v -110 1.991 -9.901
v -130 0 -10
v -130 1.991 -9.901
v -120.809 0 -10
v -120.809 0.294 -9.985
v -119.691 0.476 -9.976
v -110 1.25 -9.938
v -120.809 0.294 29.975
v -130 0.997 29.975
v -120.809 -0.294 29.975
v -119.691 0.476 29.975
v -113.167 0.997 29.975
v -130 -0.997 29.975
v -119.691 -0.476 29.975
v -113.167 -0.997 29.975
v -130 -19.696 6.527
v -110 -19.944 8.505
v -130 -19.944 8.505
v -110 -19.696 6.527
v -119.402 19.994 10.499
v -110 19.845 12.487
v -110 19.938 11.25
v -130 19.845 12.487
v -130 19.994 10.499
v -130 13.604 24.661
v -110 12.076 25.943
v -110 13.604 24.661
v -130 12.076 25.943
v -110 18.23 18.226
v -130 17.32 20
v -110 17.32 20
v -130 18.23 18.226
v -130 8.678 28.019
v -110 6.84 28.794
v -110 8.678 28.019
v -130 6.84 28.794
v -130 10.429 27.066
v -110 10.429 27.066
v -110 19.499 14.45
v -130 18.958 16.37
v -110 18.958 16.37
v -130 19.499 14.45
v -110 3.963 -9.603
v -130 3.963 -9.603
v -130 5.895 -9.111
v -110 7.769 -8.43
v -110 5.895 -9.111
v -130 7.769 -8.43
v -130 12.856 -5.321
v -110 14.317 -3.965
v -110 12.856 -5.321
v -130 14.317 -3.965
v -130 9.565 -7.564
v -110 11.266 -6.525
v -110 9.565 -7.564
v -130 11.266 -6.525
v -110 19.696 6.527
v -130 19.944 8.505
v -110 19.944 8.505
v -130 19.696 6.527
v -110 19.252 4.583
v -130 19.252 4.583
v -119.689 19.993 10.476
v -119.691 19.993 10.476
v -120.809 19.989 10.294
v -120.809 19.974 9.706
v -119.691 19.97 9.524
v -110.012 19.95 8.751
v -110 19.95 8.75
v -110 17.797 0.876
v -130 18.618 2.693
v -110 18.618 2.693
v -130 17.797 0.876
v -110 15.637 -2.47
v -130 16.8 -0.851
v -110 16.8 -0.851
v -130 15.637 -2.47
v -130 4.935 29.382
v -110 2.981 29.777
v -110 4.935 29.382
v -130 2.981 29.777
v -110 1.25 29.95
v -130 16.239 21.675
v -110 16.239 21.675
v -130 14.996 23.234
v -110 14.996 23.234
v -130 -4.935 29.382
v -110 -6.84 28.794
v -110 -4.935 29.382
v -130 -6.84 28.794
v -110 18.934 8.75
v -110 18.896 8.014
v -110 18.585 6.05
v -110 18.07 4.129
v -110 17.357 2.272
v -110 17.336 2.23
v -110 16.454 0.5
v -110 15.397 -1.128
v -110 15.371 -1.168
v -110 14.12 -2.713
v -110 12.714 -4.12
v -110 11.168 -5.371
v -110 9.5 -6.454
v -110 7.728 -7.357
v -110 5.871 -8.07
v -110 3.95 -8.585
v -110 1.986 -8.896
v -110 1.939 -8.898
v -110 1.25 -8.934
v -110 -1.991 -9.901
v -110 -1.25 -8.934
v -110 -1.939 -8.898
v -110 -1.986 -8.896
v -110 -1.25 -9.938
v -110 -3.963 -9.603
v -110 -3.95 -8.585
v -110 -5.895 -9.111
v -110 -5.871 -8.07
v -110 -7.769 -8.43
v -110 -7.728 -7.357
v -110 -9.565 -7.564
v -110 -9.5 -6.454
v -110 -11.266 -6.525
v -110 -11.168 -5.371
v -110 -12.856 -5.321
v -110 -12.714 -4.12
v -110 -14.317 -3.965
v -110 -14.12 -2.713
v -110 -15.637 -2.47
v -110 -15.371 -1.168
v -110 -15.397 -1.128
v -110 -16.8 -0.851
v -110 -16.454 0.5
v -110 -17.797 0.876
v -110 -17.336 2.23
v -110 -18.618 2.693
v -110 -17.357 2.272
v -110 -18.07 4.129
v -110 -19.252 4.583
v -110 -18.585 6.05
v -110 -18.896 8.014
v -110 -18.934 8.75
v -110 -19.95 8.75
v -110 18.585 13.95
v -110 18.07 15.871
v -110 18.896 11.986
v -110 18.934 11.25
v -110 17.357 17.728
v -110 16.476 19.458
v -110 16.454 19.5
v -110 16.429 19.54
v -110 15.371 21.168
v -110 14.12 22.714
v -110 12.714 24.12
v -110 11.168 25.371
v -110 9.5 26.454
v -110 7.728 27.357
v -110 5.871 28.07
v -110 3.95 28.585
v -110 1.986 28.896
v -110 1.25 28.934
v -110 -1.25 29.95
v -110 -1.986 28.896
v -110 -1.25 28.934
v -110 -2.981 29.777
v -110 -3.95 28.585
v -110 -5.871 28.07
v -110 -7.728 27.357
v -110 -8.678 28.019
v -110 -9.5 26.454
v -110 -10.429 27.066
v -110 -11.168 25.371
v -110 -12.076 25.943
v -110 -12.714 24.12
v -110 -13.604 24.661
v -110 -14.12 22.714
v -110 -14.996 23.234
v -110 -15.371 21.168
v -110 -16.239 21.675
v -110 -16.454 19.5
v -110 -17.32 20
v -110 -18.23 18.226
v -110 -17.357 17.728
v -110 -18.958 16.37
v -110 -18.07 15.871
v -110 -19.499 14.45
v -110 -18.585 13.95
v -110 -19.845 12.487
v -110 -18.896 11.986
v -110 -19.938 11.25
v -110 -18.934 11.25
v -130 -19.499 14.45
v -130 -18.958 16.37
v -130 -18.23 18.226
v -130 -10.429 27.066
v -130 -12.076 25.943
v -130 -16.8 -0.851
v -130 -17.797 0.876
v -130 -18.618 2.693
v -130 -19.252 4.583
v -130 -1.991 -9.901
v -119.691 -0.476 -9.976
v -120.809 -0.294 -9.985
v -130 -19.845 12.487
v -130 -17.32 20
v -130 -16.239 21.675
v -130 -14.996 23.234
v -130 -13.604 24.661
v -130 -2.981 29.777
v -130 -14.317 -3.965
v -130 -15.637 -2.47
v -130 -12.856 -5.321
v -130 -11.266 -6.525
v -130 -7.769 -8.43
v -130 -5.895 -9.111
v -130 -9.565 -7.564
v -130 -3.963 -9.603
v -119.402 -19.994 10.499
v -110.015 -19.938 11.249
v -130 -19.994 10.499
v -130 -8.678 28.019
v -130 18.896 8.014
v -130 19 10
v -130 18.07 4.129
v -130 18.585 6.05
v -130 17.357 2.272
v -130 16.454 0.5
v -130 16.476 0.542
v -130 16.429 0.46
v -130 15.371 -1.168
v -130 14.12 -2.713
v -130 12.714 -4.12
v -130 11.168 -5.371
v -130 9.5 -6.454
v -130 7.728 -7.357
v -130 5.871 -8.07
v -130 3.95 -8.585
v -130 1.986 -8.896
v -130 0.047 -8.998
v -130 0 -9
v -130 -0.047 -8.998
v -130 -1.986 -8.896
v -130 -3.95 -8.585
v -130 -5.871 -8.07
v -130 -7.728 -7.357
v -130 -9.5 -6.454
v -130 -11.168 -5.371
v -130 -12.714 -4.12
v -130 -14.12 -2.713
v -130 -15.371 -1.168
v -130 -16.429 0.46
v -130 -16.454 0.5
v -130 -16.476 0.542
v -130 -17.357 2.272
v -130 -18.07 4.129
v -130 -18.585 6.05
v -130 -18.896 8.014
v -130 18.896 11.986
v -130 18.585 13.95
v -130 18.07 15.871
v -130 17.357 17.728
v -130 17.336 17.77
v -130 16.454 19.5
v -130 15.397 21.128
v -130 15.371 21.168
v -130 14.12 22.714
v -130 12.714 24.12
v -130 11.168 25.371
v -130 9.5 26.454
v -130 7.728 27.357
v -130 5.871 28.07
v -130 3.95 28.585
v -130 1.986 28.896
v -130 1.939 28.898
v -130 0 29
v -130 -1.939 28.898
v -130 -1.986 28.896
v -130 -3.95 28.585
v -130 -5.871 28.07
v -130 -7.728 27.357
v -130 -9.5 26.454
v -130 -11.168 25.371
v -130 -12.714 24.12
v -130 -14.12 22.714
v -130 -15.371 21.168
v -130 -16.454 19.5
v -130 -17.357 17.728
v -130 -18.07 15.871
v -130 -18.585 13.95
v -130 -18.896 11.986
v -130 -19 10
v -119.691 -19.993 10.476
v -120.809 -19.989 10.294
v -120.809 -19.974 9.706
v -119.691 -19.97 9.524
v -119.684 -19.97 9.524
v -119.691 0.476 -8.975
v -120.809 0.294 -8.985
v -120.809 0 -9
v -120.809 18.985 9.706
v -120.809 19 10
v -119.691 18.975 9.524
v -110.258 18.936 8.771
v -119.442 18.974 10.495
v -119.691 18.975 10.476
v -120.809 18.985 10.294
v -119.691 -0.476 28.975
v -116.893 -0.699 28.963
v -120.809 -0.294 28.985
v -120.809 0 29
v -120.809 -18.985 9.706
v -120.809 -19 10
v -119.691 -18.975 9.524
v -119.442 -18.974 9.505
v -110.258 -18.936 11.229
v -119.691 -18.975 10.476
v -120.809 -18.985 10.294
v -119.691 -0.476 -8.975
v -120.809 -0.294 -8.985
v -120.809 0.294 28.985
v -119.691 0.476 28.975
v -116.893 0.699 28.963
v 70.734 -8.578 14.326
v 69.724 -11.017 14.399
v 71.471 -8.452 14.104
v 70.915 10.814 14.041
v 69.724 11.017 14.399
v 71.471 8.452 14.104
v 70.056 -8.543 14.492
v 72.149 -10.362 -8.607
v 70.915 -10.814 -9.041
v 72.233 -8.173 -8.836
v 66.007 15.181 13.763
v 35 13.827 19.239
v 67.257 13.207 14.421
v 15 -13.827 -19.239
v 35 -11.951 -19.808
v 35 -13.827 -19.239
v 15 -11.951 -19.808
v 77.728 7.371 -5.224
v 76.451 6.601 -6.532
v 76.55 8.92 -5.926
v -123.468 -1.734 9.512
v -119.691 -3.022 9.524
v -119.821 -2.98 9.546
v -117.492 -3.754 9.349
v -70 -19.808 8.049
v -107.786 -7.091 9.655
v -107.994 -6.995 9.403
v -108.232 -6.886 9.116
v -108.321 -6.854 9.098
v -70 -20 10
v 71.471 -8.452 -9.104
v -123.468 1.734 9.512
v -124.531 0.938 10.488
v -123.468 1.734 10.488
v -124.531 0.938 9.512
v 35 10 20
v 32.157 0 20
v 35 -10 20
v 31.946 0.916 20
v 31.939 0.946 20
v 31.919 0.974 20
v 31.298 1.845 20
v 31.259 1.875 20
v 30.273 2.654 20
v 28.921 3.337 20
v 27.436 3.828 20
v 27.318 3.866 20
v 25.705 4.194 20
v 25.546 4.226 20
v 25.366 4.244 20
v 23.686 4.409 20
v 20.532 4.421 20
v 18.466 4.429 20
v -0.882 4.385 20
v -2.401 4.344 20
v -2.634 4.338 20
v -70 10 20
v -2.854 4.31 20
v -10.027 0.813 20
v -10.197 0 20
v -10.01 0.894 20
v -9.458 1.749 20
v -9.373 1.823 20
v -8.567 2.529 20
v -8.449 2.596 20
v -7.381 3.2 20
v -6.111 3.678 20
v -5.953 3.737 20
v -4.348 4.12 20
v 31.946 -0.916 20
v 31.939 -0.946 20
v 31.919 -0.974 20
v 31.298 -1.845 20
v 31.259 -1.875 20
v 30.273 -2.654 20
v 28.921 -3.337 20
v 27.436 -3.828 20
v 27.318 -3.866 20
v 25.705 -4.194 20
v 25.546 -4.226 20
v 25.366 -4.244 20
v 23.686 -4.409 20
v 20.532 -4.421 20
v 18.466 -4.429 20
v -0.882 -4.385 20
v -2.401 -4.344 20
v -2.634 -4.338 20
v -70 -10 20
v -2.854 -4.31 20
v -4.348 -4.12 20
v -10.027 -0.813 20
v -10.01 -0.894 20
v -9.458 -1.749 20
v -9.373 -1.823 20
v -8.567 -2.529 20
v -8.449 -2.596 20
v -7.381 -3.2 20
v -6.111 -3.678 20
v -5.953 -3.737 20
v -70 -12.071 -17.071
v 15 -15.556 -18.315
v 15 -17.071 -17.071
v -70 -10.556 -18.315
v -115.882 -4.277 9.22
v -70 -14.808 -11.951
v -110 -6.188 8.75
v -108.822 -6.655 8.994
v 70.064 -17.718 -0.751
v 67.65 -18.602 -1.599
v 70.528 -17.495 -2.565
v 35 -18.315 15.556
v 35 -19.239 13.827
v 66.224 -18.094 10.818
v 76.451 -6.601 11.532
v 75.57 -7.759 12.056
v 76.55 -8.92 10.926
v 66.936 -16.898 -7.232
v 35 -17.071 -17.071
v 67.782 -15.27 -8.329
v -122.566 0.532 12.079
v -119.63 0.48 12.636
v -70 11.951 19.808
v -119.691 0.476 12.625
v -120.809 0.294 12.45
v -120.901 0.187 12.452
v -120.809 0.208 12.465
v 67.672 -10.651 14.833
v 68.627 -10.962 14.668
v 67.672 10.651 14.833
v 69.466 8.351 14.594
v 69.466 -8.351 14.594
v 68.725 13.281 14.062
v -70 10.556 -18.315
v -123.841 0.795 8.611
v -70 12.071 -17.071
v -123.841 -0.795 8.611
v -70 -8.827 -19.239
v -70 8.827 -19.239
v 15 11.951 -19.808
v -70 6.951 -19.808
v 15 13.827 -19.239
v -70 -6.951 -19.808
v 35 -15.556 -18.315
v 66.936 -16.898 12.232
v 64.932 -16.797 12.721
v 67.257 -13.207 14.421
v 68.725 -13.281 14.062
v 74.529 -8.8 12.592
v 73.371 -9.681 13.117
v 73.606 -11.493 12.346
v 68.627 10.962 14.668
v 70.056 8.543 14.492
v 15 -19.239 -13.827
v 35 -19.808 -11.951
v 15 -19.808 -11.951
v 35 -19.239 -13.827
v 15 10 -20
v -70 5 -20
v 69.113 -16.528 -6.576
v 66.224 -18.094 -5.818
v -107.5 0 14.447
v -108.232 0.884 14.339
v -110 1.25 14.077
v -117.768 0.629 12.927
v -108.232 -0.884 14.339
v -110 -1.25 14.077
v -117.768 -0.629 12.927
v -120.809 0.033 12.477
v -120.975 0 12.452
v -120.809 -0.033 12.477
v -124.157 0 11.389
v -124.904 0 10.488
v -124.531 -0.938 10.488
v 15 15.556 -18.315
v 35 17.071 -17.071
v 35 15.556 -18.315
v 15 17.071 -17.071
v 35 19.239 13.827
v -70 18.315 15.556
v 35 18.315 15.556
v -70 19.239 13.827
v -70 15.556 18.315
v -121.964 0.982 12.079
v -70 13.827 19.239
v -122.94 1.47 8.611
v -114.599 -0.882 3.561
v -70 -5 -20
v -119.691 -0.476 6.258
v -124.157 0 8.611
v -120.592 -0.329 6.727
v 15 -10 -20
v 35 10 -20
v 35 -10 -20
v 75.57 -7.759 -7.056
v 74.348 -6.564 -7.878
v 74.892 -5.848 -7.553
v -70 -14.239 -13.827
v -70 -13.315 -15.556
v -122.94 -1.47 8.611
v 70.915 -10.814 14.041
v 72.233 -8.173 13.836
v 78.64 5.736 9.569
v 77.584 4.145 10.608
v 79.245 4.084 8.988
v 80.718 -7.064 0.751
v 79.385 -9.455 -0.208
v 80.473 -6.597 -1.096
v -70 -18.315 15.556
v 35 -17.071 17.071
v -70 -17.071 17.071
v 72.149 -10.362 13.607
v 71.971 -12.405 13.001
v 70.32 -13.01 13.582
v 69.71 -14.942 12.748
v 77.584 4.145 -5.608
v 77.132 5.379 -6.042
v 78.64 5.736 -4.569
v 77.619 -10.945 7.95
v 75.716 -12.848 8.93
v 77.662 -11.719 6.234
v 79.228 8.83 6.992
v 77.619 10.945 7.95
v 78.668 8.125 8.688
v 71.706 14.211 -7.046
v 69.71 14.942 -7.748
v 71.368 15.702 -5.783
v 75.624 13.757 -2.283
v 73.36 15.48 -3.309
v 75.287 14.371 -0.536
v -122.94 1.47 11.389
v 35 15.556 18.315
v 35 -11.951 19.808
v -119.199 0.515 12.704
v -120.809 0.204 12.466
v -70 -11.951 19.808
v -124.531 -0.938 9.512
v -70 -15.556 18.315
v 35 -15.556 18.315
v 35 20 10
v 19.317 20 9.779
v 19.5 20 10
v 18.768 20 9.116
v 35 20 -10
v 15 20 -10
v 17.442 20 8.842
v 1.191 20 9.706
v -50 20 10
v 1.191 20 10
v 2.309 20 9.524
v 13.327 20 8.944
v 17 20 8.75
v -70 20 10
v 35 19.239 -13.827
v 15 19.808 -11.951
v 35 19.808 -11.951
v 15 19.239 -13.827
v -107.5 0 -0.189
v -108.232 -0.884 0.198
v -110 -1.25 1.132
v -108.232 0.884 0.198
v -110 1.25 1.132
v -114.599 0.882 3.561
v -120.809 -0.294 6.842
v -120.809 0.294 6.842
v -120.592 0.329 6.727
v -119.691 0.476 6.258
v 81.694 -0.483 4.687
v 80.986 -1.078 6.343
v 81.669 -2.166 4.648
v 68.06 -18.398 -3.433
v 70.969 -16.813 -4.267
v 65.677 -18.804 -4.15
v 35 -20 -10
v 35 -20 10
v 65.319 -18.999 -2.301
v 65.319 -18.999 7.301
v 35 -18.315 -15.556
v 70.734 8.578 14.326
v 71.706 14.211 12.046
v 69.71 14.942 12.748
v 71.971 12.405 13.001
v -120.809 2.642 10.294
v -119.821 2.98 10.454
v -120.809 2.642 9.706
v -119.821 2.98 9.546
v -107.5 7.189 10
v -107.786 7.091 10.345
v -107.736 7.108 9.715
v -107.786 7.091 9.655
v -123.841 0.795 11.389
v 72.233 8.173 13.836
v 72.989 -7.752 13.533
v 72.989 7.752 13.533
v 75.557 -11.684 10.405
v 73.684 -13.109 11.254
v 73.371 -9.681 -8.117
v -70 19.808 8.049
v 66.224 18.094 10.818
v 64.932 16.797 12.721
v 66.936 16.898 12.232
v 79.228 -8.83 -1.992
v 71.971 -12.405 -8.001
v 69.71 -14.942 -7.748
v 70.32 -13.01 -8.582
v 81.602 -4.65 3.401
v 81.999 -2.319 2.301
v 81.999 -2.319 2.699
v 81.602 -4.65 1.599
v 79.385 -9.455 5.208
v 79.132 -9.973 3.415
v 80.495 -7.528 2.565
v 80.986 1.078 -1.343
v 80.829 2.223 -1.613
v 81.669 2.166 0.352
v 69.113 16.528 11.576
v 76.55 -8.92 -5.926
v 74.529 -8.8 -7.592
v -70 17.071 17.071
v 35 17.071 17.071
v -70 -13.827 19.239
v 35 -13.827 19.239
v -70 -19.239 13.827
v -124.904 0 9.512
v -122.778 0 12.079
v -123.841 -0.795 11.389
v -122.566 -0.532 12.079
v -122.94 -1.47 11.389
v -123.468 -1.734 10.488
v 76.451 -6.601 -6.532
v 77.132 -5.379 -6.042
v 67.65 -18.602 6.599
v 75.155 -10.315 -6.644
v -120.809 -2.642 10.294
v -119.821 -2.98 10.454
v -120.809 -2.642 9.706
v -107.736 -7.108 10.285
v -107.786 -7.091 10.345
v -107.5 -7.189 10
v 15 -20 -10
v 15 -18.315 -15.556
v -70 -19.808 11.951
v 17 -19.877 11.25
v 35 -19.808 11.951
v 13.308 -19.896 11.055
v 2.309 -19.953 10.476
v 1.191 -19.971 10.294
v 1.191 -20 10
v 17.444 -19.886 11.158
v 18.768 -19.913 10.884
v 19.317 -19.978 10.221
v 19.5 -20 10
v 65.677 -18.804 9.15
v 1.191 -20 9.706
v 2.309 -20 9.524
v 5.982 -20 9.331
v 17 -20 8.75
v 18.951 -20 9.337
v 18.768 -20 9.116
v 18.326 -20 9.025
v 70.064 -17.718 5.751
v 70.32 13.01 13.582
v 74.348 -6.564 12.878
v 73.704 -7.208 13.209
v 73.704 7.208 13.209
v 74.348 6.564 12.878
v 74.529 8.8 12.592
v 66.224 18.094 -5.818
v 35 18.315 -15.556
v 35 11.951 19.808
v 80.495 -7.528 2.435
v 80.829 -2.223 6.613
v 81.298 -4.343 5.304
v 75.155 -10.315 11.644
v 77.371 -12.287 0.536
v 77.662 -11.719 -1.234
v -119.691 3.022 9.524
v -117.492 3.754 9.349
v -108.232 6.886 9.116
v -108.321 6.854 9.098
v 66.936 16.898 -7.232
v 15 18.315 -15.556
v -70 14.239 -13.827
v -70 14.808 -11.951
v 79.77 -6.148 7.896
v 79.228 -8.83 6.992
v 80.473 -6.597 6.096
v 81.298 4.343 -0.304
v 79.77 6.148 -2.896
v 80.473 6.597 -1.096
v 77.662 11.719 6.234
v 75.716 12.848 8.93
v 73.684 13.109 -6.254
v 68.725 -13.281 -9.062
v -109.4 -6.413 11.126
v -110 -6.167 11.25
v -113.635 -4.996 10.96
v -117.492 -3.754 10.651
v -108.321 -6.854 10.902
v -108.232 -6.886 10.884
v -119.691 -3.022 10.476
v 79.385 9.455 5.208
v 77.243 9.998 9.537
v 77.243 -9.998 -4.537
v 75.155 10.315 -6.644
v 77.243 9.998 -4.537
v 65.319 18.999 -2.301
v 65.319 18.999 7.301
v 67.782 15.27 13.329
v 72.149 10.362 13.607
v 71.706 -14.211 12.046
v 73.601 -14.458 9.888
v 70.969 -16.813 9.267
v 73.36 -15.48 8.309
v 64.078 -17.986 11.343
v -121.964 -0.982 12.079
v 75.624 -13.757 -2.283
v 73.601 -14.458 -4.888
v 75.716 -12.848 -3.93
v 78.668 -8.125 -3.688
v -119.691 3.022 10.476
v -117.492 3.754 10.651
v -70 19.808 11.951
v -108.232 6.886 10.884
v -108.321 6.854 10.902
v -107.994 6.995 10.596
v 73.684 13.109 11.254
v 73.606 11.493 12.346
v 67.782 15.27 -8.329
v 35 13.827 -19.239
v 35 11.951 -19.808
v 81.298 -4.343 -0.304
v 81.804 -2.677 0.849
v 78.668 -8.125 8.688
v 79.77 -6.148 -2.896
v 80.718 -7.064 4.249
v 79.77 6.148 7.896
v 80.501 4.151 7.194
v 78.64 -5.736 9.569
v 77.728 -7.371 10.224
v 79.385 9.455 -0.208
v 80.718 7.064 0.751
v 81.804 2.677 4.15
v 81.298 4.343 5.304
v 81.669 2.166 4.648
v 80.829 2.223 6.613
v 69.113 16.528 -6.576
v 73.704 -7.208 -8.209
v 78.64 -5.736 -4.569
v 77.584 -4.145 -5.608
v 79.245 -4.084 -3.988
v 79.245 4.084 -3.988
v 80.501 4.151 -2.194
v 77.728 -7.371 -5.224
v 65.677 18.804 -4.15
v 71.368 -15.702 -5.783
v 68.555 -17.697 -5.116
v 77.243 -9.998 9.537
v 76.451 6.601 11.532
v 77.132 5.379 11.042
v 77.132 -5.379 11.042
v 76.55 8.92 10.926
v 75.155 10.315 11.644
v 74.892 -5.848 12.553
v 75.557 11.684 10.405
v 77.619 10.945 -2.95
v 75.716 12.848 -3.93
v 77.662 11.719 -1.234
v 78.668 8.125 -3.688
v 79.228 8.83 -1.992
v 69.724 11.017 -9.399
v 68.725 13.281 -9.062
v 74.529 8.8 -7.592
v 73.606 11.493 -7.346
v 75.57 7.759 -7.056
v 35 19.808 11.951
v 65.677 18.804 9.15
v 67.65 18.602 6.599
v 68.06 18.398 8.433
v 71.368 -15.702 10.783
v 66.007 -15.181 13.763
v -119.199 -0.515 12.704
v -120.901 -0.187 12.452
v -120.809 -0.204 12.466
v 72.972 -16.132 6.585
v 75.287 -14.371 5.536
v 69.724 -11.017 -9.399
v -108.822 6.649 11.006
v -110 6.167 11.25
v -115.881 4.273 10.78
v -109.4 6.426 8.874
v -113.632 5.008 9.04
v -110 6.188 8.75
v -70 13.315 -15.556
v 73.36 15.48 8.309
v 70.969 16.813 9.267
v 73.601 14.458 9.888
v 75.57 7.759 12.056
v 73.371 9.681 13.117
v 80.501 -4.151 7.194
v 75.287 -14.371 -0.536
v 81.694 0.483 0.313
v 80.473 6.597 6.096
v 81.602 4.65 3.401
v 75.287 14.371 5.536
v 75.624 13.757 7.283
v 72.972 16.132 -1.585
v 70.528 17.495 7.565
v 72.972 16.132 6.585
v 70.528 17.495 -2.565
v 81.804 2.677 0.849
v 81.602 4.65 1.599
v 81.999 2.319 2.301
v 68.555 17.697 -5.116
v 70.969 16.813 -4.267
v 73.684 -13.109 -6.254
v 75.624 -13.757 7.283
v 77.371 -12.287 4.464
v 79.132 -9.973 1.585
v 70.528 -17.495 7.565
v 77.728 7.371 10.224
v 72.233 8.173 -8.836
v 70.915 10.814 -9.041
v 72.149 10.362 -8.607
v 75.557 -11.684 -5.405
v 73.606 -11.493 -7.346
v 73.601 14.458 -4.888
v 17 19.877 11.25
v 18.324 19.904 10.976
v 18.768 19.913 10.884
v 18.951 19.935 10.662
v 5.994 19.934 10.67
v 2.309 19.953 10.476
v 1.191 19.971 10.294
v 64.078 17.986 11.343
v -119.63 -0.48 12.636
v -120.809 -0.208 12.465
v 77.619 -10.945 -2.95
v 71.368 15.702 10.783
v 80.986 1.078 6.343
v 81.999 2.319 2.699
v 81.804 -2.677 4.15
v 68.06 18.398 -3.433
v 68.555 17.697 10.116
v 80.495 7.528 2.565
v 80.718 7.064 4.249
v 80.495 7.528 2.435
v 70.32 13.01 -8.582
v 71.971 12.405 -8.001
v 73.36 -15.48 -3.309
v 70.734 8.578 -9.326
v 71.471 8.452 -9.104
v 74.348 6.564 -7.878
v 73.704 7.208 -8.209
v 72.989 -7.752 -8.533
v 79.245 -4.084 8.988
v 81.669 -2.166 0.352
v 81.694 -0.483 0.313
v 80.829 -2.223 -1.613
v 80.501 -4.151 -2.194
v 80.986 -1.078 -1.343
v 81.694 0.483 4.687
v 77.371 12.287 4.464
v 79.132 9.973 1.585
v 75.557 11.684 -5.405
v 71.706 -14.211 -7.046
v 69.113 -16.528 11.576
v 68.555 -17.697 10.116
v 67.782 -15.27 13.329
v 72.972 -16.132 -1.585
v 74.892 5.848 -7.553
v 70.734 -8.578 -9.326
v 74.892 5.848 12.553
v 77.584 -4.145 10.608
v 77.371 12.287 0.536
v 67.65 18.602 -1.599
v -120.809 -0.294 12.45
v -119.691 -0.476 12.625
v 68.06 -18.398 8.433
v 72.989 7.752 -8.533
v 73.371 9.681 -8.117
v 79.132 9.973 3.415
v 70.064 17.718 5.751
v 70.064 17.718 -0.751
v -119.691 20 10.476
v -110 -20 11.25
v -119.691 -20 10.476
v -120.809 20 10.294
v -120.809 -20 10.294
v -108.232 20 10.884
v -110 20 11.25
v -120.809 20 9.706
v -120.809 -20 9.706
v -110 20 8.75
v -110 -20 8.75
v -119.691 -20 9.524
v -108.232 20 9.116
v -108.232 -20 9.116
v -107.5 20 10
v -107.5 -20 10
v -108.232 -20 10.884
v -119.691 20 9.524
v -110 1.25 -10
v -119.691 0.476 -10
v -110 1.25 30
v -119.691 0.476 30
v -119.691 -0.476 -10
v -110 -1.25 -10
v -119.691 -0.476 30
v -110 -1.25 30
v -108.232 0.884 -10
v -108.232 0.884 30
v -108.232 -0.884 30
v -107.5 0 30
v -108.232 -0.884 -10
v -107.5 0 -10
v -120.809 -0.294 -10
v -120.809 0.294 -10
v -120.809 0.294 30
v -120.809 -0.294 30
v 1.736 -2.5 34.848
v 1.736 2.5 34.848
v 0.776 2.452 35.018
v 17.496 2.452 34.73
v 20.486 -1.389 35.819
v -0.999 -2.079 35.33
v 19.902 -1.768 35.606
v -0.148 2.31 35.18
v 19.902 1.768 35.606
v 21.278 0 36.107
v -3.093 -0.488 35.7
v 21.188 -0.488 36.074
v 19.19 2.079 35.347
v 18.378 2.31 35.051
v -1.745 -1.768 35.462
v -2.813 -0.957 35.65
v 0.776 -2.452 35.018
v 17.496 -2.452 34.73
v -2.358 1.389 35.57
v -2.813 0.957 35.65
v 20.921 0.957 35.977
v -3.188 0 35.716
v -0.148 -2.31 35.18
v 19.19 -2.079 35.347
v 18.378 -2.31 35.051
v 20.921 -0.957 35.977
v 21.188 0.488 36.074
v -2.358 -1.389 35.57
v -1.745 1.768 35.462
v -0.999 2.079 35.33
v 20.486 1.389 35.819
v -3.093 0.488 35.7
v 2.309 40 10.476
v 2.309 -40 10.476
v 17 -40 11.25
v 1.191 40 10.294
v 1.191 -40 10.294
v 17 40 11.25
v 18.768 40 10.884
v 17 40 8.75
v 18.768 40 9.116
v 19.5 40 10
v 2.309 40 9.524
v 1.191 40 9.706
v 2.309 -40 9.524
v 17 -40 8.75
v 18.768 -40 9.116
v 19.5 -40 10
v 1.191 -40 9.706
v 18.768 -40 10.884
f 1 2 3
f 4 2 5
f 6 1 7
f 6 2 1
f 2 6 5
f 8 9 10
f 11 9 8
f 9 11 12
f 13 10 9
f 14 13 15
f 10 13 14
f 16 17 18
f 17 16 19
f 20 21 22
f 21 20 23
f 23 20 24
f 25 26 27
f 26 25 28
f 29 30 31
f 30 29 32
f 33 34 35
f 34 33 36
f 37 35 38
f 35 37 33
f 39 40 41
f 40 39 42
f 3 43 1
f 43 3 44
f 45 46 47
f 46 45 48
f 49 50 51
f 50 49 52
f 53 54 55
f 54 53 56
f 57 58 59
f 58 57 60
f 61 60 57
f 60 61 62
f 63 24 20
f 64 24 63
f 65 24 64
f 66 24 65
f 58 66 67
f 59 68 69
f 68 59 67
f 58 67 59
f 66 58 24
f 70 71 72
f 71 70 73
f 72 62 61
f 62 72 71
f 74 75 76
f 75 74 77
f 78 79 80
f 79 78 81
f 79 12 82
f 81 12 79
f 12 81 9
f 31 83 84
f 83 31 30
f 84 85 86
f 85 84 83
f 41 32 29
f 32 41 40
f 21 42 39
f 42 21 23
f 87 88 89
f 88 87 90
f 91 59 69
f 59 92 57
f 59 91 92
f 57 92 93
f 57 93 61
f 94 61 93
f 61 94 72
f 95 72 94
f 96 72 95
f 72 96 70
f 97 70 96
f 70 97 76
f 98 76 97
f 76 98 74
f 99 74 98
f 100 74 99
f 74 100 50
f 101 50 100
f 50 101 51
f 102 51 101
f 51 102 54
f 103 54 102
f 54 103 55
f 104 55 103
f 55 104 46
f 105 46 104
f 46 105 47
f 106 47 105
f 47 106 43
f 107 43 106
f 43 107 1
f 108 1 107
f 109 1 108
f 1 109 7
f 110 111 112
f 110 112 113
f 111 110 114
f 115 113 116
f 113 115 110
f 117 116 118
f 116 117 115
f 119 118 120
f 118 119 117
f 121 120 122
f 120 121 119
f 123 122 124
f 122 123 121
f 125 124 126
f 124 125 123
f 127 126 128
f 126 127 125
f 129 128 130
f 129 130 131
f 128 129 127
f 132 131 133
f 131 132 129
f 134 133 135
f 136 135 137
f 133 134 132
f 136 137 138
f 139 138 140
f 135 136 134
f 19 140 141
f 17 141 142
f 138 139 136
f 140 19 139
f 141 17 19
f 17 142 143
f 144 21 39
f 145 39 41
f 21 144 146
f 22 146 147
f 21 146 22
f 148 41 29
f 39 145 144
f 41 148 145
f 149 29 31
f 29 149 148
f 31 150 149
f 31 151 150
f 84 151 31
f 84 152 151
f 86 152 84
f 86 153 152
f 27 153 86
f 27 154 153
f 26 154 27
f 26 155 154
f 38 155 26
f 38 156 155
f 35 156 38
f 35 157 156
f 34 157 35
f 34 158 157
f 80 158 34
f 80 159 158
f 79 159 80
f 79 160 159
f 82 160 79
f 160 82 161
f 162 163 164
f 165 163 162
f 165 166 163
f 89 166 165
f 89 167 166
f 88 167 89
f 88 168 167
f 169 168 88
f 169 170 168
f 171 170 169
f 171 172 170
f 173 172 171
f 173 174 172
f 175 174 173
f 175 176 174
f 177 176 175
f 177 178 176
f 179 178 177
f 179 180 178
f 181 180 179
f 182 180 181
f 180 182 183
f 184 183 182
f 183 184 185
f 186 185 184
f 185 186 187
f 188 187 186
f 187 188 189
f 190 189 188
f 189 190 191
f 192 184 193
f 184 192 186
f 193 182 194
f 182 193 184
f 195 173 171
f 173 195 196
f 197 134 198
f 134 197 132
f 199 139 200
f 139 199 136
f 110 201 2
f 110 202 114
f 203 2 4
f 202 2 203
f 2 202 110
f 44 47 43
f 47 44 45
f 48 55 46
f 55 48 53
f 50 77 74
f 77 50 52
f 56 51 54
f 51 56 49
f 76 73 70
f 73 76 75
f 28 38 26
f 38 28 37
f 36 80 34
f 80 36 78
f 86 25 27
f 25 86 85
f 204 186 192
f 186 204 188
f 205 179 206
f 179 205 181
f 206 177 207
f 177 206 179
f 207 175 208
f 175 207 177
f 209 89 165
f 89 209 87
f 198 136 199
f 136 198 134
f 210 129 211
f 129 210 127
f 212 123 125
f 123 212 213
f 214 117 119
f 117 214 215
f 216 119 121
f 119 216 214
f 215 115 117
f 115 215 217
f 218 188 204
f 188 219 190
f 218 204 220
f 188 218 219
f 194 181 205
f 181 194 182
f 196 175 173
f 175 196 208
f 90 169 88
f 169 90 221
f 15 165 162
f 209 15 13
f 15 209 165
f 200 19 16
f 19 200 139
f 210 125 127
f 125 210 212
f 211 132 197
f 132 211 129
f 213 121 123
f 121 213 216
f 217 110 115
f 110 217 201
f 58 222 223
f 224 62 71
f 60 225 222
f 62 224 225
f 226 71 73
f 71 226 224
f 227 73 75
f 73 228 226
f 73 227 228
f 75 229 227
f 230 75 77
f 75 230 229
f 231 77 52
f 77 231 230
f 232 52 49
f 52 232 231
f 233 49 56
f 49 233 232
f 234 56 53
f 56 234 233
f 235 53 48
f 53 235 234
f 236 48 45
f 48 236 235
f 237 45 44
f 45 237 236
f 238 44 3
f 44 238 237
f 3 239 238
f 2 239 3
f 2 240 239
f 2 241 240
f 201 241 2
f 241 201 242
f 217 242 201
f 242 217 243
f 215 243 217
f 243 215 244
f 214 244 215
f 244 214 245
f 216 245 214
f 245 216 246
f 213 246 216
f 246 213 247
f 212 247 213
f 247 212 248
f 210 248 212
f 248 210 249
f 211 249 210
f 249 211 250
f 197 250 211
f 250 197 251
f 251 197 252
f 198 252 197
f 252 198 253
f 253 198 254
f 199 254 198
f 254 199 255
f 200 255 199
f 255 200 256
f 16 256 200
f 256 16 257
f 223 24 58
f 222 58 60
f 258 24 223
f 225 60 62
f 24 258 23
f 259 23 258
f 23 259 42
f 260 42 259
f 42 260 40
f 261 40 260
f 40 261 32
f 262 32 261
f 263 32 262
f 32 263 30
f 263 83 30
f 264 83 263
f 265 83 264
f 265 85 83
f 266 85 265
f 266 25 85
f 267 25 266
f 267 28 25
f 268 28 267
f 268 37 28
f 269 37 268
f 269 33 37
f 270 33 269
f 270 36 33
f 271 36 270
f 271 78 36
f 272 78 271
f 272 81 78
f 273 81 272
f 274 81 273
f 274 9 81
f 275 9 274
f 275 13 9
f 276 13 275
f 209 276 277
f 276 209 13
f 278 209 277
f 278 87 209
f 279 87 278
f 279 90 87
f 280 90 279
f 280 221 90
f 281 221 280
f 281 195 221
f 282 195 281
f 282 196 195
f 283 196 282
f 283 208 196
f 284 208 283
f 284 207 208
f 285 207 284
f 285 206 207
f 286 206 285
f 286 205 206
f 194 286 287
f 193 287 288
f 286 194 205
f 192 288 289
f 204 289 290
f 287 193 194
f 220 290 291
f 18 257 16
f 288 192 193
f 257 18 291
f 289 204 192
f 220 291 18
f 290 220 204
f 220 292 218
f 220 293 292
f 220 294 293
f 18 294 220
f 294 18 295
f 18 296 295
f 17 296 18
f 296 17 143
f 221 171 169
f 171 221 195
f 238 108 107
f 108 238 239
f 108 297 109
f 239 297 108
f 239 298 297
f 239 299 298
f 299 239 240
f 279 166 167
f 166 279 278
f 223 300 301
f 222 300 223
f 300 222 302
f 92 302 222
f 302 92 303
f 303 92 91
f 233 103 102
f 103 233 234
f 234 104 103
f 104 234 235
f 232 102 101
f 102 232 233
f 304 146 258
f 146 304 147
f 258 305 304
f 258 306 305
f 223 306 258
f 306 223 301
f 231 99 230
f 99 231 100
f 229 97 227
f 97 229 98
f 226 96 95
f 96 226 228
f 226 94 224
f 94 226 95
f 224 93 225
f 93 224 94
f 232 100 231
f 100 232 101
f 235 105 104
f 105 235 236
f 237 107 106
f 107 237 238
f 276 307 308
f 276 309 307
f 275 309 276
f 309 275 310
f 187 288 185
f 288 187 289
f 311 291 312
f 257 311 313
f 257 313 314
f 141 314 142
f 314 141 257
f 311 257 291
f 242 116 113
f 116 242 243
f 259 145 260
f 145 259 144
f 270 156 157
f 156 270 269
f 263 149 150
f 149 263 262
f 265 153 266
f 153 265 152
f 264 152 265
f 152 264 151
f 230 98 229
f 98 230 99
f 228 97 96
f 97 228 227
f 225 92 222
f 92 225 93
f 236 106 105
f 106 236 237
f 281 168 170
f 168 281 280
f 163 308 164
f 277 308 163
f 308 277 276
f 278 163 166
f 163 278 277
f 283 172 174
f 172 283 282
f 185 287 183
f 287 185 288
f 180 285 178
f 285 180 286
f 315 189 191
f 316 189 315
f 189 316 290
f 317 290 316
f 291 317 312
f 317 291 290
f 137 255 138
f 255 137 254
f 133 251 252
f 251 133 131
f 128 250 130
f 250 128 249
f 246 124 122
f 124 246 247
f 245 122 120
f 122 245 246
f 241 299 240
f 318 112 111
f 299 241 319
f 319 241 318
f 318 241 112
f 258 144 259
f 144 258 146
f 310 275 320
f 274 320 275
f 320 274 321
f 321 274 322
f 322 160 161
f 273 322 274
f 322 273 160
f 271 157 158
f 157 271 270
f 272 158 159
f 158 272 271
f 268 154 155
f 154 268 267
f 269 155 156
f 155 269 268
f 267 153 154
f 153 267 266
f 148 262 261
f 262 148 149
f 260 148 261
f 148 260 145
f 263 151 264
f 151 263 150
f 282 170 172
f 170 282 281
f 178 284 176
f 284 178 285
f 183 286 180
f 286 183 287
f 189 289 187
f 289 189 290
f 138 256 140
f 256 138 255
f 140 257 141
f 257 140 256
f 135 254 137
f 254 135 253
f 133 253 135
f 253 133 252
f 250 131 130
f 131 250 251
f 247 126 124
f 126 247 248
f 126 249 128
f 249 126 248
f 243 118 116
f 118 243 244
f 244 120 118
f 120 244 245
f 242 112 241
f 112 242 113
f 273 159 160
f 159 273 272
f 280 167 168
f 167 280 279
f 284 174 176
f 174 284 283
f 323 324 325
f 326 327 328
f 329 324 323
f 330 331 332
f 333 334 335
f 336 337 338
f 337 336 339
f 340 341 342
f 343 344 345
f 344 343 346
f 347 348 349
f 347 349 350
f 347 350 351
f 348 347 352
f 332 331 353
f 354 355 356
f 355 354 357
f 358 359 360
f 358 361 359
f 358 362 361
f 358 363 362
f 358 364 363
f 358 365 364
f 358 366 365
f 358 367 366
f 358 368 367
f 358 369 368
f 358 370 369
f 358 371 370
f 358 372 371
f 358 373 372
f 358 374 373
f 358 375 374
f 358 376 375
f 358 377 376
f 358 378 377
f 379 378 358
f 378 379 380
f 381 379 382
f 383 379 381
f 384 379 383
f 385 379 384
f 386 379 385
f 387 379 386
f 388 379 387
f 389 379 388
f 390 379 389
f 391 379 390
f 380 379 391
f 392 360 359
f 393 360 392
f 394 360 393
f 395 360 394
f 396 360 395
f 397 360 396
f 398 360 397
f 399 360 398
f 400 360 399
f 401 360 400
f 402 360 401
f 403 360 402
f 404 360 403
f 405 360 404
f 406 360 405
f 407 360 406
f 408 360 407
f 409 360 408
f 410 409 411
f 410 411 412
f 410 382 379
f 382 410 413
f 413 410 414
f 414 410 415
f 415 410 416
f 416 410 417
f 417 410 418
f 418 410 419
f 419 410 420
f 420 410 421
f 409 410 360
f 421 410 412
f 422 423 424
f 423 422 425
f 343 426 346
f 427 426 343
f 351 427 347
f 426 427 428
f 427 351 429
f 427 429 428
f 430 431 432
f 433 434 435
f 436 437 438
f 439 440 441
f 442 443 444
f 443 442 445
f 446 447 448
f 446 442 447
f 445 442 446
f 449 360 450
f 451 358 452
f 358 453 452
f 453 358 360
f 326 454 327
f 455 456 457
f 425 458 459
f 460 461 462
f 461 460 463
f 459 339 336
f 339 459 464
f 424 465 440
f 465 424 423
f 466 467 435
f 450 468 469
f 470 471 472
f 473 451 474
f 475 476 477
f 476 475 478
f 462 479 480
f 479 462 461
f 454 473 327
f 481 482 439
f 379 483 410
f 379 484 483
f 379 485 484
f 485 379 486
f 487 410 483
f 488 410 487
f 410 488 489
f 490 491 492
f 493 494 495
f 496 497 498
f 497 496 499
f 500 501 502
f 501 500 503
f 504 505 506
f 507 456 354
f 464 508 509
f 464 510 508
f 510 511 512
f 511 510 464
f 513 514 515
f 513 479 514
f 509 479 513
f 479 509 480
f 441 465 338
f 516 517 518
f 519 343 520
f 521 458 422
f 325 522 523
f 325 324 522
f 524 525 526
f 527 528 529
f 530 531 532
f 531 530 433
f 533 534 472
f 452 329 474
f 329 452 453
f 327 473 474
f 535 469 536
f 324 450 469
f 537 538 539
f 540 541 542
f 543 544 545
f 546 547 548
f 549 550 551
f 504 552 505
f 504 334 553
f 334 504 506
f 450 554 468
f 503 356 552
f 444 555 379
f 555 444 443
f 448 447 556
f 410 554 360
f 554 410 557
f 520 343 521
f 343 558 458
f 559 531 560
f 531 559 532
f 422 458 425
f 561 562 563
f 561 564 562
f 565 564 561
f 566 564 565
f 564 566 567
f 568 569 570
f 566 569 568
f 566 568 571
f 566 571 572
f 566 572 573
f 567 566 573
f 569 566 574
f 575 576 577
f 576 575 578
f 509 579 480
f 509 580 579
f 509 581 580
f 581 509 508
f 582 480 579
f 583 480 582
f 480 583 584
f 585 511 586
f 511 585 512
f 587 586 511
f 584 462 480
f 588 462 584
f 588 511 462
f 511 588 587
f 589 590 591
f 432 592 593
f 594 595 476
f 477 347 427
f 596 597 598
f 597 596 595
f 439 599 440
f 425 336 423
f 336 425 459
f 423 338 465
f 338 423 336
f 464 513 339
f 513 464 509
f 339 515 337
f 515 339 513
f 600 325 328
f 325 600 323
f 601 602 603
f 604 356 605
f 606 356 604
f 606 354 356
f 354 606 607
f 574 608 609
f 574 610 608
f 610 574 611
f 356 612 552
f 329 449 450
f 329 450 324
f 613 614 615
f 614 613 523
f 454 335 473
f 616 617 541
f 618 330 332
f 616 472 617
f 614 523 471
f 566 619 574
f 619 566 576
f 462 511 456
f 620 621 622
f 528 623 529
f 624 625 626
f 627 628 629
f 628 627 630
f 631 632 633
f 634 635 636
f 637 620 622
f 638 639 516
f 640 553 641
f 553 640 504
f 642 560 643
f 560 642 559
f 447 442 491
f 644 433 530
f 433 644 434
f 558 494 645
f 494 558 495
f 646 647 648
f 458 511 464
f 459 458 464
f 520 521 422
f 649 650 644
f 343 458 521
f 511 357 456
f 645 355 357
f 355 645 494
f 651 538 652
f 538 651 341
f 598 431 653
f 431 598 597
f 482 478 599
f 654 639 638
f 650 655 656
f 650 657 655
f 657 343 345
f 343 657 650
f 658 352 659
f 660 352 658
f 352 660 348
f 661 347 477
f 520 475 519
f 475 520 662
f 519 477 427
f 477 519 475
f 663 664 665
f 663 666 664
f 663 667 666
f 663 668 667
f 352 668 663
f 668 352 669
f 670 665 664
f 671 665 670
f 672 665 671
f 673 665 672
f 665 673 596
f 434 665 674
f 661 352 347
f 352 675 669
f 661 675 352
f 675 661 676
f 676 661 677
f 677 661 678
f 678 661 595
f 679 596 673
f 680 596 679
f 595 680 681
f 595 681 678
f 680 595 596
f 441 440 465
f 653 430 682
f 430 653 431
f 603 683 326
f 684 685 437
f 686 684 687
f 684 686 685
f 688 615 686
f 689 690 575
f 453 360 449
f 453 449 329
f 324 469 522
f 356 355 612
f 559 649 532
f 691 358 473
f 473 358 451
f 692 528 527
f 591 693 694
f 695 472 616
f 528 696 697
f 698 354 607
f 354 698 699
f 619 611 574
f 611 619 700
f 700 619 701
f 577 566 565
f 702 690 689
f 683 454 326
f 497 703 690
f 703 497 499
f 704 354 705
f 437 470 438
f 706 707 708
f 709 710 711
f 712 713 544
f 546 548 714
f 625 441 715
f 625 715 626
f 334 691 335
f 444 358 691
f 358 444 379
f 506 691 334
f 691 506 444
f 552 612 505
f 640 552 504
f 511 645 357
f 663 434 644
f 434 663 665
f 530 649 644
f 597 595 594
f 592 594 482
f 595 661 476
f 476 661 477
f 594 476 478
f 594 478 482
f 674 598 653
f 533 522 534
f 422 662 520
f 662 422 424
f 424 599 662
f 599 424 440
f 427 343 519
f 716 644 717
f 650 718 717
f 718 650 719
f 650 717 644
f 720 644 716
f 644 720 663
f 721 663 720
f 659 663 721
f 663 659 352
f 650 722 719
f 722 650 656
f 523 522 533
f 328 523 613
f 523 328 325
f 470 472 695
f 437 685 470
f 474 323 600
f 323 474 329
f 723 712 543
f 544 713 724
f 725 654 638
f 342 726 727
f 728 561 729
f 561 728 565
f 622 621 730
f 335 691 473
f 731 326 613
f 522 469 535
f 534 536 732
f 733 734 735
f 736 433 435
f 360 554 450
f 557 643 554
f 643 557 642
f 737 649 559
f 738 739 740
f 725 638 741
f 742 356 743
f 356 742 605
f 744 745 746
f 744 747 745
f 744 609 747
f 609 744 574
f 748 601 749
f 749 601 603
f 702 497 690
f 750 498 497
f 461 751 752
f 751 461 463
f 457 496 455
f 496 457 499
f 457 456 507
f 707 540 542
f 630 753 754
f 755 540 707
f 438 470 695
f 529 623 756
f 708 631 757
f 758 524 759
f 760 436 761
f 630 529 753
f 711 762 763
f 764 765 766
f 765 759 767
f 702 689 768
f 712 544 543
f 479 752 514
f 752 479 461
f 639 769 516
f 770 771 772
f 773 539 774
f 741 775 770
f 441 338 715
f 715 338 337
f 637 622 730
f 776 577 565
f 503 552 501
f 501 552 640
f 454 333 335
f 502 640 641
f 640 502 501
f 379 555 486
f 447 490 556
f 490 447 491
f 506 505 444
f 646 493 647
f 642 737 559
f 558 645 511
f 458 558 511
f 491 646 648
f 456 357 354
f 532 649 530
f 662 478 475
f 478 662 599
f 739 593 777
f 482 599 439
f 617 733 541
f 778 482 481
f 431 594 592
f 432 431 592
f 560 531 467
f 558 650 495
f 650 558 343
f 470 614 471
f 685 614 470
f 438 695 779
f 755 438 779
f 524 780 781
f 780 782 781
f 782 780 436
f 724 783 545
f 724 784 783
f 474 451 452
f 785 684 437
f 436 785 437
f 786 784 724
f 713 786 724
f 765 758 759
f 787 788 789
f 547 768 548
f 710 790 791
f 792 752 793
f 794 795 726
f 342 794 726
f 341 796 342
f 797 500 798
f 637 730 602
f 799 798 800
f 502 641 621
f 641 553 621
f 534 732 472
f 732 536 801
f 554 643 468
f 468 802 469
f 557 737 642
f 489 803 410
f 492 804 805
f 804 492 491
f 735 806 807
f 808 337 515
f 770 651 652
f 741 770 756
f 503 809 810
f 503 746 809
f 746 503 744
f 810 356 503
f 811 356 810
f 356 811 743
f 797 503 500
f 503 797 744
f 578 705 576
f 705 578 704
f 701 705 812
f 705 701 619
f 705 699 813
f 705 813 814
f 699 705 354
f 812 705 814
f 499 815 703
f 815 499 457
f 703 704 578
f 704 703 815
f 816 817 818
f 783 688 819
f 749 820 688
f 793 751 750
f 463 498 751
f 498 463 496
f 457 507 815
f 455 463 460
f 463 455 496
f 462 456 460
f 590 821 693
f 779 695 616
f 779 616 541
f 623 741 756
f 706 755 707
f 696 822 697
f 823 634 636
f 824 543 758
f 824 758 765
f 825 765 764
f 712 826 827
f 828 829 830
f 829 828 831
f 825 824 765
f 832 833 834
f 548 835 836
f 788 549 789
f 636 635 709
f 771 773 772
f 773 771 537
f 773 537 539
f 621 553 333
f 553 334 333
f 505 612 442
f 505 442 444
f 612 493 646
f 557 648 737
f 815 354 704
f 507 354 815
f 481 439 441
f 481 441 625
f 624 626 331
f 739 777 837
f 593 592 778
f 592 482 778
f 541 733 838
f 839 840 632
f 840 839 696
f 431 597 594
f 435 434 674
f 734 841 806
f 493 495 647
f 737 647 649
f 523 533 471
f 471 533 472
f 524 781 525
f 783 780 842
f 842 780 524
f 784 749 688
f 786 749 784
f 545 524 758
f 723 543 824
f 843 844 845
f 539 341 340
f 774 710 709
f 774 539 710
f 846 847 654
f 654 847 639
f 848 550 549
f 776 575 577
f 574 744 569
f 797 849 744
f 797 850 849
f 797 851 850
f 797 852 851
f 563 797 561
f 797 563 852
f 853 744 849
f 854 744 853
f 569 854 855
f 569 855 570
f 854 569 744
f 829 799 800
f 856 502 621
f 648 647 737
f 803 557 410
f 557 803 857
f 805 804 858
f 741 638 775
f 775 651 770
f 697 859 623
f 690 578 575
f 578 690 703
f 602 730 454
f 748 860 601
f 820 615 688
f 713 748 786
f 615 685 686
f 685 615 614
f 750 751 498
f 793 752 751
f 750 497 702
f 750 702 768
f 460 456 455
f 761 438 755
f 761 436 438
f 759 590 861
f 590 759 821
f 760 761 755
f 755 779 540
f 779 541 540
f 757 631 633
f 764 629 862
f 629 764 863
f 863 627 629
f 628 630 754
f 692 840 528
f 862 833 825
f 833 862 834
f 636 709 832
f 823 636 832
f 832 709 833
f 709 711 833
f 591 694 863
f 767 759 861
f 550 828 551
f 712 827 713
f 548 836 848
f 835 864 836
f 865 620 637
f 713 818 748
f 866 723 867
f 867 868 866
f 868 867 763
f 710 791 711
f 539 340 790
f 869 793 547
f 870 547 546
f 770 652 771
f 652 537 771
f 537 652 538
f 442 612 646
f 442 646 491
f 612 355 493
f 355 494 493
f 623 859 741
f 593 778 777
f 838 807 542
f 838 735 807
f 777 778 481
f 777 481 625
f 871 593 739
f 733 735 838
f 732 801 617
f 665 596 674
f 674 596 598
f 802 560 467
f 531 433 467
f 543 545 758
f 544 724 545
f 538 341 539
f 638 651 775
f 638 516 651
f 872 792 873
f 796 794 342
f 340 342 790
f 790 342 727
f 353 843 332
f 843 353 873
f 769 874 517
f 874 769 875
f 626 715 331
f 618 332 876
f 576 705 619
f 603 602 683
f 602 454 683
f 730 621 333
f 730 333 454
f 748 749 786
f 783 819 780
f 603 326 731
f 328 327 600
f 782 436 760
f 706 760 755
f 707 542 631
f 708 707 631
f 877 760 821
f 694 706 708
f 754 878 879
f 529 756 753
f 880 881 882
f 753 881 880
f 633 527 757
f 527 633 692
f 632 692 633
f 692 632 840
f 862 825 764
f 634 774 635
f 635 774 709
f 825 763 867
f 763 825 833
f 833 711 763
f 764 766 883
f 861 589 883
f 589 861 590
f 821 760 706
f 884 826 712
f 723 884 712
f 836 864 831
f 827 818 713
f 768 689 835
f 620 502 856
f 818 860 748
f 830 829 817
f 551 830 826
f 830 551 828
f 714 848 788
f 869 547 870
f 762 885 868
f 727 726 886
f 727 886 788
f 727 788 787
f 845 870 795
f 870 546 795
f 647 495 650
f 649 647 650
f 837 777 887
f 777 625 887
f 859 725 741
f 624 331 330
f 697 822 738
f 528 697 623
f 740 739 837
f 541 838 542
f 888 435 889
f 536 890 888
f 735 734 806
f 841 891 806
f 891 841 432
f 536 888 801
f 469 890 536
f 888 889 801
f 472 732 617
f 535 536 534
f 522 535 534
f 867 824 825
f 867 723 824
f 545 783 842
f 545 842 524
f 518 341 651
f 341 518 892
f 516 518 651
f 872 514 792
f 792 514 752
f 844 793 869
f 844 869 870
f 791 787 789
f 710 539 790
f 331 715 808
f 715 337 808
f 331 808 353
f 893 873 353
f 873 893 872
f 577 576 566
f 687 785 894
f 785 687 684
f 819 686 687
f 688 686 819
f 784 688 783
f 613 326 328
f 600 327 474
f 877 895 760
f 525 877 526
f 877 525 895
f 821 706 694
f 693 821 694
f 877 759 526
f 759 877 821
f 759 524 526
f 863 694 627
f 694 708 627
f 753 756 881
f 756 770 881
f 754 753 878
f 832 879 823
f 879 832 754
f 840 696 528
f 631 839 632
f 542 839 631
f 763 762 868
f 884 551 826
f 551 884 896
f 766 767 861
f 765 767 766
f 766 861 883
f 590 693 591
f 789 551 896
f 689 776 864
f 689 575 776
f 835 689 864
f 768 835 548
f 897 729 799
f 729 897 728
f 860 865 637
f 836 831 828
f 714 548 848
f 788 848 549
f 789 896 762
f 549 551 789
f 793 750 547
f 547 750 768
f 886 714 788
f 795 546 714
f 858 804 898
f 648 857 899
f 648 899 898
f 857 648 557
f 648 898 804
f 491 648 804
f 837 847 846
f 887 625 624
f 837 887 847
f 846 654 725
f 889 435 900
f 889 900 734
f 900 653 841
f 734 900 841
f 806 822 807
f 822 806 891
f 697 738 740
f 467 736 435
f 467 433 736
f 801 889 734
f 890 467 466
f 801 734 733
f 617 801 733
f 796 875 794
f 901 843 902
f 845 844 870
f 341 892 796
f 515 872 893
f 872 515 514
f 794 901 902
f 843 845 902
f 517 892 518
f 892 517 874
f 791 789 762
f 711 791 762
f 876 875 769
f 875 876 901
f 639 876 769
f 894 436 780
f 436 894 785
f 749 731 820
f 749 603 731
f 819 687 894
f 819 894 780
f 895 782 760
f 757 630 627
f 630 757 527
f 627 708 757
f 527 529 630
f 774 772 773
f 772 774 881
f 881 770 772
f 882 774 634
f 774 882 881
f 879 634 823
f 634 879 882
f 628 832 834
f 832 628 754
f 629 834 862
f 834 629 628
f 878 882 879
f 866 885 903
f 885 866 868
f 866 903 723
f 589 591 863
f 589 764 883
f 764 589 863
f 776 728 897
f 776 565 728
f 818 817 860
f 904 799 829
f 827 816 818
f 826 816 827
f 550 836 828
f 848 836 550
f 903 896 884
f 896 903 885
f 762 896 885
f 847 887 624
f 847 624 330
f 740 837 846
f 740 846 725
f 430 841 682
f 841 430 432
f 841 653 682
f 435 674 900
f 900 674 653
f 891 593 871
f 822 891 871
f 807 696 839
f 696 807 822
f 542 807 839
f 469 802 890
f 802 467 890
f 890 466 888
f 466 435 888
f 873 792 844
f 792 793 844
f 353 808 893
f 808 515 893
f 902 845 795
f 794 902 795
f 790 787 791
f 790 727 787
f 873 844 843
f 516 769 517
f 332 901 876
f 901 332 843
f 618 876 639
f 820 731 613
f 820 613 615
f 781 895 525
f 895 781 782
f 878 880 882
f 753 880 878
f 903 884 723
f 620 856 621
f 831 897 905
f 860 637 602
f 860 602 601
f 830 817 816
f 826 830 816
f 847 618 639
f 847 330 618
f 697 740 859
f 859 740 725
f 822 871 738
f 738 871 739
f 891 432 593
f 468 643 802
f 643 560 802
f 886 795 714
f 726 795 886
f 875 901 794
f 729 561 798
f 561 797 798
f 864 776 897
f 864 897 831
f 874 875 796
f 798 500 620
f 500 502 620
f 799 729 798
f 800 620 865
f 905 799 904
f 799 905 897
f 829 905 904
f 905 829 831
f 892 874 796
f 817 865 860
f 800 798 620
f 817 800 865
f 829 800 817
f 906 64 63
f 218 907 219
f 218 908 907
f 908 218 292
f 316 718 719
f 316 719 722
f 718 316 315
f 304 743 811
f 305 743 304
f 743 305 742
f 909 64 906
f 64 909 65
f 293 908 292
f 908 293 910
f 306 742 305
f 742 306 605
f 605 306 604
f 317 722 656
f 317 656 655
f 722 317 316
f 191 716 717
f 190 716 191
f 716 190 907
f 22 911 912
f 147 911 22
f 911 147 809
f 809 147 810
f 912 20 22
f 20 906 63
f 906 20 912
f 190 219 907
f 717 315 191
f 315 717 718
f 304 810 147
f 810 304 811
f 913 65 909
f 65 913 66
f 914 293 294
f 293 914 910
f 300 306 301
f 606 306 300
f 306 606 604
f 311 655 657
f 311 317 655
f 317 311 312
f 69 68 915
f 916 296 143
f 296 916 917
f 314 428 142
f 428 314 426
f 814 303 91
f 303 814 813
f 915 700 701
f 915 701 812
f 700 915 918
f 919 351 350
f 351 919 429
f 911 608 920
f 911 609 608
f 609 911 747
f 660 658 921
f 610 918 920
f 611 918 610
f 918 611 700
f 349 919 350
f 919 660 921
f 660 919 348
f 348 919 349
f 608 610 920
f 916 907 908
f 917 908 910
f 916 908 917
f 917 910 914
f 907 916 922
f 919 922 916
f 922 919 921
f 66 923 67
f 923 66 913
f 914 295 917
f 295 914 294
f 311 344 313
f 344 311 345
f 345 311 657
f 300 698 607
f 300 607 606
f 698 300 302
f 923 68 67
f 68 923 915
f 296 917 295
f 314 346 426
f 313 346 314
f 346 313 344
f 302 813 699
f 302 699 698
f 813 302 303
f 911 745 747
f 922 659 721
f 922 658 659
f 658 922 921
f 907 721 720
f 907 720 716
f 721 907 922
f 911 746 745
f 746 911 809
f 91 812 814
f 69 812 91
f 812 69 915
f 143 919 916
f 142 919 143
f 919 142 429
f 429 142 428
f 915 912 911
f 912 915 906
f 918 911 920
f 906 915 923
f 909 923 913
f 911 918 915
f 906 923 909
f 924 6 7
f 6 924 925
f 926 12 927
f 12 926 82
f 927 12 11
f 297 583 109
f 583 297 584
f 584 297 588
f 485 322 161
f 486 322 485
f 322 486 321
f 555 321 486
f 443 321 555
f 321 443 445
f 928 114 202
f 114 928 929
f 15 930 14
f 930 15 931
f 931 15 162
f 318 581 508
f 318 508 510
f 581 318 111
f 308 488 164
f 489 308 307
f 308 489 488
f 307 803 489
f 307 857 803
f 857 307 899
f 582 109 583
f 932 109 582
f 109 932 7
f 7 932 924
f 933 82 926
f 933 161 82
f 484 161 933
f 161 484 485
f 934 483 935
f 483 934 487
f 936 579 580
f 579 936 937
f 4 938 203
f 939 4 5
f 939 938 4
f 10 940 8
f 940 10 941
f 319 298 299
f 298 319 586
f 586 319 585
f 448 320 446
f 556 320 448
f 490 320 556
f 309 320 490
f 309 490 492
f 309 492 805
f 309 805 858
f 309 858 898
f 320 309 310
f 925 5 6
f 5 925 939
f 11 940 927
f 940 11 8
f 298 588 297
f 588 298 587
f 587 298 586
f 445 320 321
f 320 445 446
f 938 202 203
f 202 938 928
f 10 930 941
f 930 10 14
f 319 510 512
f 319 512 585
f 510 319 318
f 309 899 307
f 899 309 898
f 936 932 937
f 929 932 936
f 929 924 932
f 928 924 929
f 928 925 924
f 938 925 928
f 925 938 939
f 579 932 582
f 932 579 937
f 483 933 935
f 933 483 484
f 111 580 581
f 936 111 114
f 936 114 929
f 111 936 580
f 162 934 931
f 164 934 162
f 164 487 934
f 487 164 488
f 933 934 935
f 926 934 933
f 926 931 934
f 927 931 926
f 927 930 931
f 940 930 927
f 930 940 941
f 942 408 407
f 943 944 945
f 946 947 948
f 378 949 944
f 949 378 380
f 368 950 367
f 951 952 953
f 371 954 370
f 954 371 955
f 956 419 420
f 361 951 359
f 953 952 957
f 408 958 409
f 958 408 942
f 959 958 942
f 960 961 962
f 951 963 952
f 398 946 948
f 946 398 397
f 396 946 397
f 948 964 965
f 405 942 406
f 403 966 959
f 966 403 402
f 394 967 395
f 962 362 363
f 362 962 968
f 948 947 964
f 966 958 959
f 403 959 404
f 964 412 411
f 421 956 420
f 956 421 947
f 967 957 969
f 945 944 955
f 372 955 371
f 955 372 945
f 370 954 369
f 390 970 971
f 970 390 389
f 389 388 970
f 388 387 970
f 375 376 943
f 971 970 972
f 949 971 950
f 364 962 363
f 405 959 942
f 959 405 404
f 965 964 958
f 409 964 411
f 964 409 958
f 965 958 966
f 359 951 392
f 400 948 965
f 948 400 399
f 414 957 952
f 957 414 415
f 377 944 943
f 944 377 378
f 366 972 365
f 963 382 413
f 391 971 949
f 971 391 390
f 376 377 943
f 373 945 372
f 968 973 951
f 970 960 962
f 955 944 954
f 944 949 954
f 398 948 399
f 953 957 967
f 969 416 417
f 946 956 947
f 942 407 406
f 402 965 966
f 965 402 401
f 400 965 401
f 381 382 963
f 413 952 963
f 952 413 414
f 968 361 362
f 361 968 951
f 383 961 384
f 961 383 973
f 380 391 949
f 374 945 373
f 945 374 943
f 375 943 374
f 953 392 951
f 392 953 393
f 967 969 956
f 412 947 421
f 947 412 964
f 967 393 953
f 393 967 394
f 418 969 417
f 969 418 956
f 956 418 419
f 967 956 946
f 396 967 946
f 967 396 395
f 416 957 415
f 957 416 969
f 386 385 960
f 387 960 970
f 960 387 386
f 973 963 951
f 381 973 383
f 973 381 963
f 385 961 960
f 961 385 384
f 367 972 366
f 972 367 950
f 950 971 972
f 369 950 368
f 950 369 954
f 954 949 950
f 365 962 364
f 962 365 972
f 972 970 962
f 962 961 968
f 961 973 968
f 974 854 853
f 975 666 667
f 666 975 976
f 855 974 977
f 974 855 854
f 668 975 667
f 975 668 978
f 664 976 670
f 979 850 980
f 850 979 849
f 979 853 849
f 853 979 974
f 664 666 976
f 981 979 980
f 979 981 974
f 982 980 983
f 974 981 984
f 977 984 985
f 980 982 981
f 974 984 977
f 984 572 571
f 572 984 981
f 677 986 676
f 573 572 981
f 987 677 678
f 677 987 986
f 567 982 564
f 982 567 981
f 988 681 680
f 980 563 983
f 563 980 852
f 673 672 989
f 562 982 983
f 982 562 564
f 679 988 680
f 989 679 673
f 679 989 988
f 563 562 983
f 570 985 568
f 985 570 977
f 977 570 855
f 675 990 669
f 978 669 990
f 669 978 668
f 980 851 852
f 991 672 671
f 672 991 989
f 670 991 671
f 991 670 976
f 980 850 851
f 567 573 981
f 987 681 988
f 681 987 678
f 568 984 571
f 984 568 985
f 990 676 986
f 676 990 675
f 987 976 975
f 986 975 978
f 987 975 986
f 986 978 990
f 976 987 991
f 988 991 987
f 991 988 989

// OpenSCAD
// main hull
hull()
{
    // blok depan
    translate([25,10,10]) rotate([0,90,0]) cylinder(h=20,d1=20,d2=20,$fa=1,center=true);
    translate([25,-10,10]) rotate([0,90,0]) cylinder(h=20,d1=20,d2=20,$fa=1,center=true);
    translate([25,10,-10]) rotate([0,90,0]) cylinder(h=20,d1=20,d2=20,$fa=1,center=true);
    translate([25,-10,-10]) rotate([0,90,0]) cylinder(h=20,d1=20,d2=20,$fa=1,center=true);
    // blok belakang
    translate([-60,10,10]) rotate([0,90,0]) cylinder(h=20,d1=20,d2=20,$fa=1,center=true);
    translate([-60,-10,10]) rotate([0,90,0]) cylinder(h=20,d1=20,d2=20,$fa=1,center=true);
    translate([-60,5,-10]) rotate([0,90,0]) cylinder(h=20,d1=20,d2=20,$fa=1,center=true);
    translate([-60,-5,-10]) rotate([0,90,0]) cylinder(h=20,d1=20,d2=20,$fa=1,center=true);
    // moncong
    translate([70,7,5]) rotate([0,20,-45]) scale([1,0.6,0.6]) sphere(d=30,center=true);
    translate([70,-7,5]) rotate([0,20,45]) scale([1,0.6,0.6]) sphere(d=30,center=true);
    translate([70,7,0]) rotate([0,-20,-45]) scale([1,0.6,0.6]) sphere(d=30,center=true);
    translate([70,-7,0]) rotate([0,-20,45]) scale([1,0.6,0.6]) sphere(d=30,center=true);
    // buntut
    translate([-120,0,10]) scale([1,0.5,0.5]) sphere(d=10,center=true);
}

// horizontal stab
hull()
{
    translate([-120,0,10]) scale([1,1,0.5]) rotate([90,0,0]) cylinder(h=40,d1=2,d2=2,$fa=1,center=true);
    translate([-110,0,10]) scale([1,1,0.5]) rotate([90,0,0]) cylinder(h=40,d1=5,d2=5,$fa=1,center=true);
}

// vertical stab
hull()
{
    translate([-120,0,10]) scale([1,0.5,1]) cylinder(h=40,d1=2,d2=2,$fa=1,center=true);
    translate([-110,0,10]) scale([1,0.5,1]) cylinder(h=40,d1=5,d2=5,$fa=1,center=true);
}

// bridge
hull()
{
    translate([0,0,25]) rotate([0,10,0]) scale([1,0.5,1]) cylinder(h=20,d1=20,d2=10,$fa=1,center=true);
    translate([20,0,25]) rotate([0,-20,0]) scale([1,0.5,1]) cylinder(h=20,d1=20,d2=10,$fa=1,center=true);
}

// fin
hull()
{
    translate([2,0,10]) scale([1,1,0.5]) rotate([90,0,0]) cylinder(h=80,d1=2,d2=2,$fa=1,center=true);
    translate([17,0,10]) scale([1,1,0.5]) rotate([90,0,0]) cylinder(h=80,d1=5,d2=5,$fa=1,center=true);
}

// ducted fan
difference()
{
    translate([-120,0,10]) rotate([0,90,0]) cylinder(h=20,d1=40,d2=40,$fa=1,center=true);
    translate([-120,0,10]) rotate([0,90,0]) cylinder(h=21,d1=38,d2=38,$fa=1,center=true);
}
